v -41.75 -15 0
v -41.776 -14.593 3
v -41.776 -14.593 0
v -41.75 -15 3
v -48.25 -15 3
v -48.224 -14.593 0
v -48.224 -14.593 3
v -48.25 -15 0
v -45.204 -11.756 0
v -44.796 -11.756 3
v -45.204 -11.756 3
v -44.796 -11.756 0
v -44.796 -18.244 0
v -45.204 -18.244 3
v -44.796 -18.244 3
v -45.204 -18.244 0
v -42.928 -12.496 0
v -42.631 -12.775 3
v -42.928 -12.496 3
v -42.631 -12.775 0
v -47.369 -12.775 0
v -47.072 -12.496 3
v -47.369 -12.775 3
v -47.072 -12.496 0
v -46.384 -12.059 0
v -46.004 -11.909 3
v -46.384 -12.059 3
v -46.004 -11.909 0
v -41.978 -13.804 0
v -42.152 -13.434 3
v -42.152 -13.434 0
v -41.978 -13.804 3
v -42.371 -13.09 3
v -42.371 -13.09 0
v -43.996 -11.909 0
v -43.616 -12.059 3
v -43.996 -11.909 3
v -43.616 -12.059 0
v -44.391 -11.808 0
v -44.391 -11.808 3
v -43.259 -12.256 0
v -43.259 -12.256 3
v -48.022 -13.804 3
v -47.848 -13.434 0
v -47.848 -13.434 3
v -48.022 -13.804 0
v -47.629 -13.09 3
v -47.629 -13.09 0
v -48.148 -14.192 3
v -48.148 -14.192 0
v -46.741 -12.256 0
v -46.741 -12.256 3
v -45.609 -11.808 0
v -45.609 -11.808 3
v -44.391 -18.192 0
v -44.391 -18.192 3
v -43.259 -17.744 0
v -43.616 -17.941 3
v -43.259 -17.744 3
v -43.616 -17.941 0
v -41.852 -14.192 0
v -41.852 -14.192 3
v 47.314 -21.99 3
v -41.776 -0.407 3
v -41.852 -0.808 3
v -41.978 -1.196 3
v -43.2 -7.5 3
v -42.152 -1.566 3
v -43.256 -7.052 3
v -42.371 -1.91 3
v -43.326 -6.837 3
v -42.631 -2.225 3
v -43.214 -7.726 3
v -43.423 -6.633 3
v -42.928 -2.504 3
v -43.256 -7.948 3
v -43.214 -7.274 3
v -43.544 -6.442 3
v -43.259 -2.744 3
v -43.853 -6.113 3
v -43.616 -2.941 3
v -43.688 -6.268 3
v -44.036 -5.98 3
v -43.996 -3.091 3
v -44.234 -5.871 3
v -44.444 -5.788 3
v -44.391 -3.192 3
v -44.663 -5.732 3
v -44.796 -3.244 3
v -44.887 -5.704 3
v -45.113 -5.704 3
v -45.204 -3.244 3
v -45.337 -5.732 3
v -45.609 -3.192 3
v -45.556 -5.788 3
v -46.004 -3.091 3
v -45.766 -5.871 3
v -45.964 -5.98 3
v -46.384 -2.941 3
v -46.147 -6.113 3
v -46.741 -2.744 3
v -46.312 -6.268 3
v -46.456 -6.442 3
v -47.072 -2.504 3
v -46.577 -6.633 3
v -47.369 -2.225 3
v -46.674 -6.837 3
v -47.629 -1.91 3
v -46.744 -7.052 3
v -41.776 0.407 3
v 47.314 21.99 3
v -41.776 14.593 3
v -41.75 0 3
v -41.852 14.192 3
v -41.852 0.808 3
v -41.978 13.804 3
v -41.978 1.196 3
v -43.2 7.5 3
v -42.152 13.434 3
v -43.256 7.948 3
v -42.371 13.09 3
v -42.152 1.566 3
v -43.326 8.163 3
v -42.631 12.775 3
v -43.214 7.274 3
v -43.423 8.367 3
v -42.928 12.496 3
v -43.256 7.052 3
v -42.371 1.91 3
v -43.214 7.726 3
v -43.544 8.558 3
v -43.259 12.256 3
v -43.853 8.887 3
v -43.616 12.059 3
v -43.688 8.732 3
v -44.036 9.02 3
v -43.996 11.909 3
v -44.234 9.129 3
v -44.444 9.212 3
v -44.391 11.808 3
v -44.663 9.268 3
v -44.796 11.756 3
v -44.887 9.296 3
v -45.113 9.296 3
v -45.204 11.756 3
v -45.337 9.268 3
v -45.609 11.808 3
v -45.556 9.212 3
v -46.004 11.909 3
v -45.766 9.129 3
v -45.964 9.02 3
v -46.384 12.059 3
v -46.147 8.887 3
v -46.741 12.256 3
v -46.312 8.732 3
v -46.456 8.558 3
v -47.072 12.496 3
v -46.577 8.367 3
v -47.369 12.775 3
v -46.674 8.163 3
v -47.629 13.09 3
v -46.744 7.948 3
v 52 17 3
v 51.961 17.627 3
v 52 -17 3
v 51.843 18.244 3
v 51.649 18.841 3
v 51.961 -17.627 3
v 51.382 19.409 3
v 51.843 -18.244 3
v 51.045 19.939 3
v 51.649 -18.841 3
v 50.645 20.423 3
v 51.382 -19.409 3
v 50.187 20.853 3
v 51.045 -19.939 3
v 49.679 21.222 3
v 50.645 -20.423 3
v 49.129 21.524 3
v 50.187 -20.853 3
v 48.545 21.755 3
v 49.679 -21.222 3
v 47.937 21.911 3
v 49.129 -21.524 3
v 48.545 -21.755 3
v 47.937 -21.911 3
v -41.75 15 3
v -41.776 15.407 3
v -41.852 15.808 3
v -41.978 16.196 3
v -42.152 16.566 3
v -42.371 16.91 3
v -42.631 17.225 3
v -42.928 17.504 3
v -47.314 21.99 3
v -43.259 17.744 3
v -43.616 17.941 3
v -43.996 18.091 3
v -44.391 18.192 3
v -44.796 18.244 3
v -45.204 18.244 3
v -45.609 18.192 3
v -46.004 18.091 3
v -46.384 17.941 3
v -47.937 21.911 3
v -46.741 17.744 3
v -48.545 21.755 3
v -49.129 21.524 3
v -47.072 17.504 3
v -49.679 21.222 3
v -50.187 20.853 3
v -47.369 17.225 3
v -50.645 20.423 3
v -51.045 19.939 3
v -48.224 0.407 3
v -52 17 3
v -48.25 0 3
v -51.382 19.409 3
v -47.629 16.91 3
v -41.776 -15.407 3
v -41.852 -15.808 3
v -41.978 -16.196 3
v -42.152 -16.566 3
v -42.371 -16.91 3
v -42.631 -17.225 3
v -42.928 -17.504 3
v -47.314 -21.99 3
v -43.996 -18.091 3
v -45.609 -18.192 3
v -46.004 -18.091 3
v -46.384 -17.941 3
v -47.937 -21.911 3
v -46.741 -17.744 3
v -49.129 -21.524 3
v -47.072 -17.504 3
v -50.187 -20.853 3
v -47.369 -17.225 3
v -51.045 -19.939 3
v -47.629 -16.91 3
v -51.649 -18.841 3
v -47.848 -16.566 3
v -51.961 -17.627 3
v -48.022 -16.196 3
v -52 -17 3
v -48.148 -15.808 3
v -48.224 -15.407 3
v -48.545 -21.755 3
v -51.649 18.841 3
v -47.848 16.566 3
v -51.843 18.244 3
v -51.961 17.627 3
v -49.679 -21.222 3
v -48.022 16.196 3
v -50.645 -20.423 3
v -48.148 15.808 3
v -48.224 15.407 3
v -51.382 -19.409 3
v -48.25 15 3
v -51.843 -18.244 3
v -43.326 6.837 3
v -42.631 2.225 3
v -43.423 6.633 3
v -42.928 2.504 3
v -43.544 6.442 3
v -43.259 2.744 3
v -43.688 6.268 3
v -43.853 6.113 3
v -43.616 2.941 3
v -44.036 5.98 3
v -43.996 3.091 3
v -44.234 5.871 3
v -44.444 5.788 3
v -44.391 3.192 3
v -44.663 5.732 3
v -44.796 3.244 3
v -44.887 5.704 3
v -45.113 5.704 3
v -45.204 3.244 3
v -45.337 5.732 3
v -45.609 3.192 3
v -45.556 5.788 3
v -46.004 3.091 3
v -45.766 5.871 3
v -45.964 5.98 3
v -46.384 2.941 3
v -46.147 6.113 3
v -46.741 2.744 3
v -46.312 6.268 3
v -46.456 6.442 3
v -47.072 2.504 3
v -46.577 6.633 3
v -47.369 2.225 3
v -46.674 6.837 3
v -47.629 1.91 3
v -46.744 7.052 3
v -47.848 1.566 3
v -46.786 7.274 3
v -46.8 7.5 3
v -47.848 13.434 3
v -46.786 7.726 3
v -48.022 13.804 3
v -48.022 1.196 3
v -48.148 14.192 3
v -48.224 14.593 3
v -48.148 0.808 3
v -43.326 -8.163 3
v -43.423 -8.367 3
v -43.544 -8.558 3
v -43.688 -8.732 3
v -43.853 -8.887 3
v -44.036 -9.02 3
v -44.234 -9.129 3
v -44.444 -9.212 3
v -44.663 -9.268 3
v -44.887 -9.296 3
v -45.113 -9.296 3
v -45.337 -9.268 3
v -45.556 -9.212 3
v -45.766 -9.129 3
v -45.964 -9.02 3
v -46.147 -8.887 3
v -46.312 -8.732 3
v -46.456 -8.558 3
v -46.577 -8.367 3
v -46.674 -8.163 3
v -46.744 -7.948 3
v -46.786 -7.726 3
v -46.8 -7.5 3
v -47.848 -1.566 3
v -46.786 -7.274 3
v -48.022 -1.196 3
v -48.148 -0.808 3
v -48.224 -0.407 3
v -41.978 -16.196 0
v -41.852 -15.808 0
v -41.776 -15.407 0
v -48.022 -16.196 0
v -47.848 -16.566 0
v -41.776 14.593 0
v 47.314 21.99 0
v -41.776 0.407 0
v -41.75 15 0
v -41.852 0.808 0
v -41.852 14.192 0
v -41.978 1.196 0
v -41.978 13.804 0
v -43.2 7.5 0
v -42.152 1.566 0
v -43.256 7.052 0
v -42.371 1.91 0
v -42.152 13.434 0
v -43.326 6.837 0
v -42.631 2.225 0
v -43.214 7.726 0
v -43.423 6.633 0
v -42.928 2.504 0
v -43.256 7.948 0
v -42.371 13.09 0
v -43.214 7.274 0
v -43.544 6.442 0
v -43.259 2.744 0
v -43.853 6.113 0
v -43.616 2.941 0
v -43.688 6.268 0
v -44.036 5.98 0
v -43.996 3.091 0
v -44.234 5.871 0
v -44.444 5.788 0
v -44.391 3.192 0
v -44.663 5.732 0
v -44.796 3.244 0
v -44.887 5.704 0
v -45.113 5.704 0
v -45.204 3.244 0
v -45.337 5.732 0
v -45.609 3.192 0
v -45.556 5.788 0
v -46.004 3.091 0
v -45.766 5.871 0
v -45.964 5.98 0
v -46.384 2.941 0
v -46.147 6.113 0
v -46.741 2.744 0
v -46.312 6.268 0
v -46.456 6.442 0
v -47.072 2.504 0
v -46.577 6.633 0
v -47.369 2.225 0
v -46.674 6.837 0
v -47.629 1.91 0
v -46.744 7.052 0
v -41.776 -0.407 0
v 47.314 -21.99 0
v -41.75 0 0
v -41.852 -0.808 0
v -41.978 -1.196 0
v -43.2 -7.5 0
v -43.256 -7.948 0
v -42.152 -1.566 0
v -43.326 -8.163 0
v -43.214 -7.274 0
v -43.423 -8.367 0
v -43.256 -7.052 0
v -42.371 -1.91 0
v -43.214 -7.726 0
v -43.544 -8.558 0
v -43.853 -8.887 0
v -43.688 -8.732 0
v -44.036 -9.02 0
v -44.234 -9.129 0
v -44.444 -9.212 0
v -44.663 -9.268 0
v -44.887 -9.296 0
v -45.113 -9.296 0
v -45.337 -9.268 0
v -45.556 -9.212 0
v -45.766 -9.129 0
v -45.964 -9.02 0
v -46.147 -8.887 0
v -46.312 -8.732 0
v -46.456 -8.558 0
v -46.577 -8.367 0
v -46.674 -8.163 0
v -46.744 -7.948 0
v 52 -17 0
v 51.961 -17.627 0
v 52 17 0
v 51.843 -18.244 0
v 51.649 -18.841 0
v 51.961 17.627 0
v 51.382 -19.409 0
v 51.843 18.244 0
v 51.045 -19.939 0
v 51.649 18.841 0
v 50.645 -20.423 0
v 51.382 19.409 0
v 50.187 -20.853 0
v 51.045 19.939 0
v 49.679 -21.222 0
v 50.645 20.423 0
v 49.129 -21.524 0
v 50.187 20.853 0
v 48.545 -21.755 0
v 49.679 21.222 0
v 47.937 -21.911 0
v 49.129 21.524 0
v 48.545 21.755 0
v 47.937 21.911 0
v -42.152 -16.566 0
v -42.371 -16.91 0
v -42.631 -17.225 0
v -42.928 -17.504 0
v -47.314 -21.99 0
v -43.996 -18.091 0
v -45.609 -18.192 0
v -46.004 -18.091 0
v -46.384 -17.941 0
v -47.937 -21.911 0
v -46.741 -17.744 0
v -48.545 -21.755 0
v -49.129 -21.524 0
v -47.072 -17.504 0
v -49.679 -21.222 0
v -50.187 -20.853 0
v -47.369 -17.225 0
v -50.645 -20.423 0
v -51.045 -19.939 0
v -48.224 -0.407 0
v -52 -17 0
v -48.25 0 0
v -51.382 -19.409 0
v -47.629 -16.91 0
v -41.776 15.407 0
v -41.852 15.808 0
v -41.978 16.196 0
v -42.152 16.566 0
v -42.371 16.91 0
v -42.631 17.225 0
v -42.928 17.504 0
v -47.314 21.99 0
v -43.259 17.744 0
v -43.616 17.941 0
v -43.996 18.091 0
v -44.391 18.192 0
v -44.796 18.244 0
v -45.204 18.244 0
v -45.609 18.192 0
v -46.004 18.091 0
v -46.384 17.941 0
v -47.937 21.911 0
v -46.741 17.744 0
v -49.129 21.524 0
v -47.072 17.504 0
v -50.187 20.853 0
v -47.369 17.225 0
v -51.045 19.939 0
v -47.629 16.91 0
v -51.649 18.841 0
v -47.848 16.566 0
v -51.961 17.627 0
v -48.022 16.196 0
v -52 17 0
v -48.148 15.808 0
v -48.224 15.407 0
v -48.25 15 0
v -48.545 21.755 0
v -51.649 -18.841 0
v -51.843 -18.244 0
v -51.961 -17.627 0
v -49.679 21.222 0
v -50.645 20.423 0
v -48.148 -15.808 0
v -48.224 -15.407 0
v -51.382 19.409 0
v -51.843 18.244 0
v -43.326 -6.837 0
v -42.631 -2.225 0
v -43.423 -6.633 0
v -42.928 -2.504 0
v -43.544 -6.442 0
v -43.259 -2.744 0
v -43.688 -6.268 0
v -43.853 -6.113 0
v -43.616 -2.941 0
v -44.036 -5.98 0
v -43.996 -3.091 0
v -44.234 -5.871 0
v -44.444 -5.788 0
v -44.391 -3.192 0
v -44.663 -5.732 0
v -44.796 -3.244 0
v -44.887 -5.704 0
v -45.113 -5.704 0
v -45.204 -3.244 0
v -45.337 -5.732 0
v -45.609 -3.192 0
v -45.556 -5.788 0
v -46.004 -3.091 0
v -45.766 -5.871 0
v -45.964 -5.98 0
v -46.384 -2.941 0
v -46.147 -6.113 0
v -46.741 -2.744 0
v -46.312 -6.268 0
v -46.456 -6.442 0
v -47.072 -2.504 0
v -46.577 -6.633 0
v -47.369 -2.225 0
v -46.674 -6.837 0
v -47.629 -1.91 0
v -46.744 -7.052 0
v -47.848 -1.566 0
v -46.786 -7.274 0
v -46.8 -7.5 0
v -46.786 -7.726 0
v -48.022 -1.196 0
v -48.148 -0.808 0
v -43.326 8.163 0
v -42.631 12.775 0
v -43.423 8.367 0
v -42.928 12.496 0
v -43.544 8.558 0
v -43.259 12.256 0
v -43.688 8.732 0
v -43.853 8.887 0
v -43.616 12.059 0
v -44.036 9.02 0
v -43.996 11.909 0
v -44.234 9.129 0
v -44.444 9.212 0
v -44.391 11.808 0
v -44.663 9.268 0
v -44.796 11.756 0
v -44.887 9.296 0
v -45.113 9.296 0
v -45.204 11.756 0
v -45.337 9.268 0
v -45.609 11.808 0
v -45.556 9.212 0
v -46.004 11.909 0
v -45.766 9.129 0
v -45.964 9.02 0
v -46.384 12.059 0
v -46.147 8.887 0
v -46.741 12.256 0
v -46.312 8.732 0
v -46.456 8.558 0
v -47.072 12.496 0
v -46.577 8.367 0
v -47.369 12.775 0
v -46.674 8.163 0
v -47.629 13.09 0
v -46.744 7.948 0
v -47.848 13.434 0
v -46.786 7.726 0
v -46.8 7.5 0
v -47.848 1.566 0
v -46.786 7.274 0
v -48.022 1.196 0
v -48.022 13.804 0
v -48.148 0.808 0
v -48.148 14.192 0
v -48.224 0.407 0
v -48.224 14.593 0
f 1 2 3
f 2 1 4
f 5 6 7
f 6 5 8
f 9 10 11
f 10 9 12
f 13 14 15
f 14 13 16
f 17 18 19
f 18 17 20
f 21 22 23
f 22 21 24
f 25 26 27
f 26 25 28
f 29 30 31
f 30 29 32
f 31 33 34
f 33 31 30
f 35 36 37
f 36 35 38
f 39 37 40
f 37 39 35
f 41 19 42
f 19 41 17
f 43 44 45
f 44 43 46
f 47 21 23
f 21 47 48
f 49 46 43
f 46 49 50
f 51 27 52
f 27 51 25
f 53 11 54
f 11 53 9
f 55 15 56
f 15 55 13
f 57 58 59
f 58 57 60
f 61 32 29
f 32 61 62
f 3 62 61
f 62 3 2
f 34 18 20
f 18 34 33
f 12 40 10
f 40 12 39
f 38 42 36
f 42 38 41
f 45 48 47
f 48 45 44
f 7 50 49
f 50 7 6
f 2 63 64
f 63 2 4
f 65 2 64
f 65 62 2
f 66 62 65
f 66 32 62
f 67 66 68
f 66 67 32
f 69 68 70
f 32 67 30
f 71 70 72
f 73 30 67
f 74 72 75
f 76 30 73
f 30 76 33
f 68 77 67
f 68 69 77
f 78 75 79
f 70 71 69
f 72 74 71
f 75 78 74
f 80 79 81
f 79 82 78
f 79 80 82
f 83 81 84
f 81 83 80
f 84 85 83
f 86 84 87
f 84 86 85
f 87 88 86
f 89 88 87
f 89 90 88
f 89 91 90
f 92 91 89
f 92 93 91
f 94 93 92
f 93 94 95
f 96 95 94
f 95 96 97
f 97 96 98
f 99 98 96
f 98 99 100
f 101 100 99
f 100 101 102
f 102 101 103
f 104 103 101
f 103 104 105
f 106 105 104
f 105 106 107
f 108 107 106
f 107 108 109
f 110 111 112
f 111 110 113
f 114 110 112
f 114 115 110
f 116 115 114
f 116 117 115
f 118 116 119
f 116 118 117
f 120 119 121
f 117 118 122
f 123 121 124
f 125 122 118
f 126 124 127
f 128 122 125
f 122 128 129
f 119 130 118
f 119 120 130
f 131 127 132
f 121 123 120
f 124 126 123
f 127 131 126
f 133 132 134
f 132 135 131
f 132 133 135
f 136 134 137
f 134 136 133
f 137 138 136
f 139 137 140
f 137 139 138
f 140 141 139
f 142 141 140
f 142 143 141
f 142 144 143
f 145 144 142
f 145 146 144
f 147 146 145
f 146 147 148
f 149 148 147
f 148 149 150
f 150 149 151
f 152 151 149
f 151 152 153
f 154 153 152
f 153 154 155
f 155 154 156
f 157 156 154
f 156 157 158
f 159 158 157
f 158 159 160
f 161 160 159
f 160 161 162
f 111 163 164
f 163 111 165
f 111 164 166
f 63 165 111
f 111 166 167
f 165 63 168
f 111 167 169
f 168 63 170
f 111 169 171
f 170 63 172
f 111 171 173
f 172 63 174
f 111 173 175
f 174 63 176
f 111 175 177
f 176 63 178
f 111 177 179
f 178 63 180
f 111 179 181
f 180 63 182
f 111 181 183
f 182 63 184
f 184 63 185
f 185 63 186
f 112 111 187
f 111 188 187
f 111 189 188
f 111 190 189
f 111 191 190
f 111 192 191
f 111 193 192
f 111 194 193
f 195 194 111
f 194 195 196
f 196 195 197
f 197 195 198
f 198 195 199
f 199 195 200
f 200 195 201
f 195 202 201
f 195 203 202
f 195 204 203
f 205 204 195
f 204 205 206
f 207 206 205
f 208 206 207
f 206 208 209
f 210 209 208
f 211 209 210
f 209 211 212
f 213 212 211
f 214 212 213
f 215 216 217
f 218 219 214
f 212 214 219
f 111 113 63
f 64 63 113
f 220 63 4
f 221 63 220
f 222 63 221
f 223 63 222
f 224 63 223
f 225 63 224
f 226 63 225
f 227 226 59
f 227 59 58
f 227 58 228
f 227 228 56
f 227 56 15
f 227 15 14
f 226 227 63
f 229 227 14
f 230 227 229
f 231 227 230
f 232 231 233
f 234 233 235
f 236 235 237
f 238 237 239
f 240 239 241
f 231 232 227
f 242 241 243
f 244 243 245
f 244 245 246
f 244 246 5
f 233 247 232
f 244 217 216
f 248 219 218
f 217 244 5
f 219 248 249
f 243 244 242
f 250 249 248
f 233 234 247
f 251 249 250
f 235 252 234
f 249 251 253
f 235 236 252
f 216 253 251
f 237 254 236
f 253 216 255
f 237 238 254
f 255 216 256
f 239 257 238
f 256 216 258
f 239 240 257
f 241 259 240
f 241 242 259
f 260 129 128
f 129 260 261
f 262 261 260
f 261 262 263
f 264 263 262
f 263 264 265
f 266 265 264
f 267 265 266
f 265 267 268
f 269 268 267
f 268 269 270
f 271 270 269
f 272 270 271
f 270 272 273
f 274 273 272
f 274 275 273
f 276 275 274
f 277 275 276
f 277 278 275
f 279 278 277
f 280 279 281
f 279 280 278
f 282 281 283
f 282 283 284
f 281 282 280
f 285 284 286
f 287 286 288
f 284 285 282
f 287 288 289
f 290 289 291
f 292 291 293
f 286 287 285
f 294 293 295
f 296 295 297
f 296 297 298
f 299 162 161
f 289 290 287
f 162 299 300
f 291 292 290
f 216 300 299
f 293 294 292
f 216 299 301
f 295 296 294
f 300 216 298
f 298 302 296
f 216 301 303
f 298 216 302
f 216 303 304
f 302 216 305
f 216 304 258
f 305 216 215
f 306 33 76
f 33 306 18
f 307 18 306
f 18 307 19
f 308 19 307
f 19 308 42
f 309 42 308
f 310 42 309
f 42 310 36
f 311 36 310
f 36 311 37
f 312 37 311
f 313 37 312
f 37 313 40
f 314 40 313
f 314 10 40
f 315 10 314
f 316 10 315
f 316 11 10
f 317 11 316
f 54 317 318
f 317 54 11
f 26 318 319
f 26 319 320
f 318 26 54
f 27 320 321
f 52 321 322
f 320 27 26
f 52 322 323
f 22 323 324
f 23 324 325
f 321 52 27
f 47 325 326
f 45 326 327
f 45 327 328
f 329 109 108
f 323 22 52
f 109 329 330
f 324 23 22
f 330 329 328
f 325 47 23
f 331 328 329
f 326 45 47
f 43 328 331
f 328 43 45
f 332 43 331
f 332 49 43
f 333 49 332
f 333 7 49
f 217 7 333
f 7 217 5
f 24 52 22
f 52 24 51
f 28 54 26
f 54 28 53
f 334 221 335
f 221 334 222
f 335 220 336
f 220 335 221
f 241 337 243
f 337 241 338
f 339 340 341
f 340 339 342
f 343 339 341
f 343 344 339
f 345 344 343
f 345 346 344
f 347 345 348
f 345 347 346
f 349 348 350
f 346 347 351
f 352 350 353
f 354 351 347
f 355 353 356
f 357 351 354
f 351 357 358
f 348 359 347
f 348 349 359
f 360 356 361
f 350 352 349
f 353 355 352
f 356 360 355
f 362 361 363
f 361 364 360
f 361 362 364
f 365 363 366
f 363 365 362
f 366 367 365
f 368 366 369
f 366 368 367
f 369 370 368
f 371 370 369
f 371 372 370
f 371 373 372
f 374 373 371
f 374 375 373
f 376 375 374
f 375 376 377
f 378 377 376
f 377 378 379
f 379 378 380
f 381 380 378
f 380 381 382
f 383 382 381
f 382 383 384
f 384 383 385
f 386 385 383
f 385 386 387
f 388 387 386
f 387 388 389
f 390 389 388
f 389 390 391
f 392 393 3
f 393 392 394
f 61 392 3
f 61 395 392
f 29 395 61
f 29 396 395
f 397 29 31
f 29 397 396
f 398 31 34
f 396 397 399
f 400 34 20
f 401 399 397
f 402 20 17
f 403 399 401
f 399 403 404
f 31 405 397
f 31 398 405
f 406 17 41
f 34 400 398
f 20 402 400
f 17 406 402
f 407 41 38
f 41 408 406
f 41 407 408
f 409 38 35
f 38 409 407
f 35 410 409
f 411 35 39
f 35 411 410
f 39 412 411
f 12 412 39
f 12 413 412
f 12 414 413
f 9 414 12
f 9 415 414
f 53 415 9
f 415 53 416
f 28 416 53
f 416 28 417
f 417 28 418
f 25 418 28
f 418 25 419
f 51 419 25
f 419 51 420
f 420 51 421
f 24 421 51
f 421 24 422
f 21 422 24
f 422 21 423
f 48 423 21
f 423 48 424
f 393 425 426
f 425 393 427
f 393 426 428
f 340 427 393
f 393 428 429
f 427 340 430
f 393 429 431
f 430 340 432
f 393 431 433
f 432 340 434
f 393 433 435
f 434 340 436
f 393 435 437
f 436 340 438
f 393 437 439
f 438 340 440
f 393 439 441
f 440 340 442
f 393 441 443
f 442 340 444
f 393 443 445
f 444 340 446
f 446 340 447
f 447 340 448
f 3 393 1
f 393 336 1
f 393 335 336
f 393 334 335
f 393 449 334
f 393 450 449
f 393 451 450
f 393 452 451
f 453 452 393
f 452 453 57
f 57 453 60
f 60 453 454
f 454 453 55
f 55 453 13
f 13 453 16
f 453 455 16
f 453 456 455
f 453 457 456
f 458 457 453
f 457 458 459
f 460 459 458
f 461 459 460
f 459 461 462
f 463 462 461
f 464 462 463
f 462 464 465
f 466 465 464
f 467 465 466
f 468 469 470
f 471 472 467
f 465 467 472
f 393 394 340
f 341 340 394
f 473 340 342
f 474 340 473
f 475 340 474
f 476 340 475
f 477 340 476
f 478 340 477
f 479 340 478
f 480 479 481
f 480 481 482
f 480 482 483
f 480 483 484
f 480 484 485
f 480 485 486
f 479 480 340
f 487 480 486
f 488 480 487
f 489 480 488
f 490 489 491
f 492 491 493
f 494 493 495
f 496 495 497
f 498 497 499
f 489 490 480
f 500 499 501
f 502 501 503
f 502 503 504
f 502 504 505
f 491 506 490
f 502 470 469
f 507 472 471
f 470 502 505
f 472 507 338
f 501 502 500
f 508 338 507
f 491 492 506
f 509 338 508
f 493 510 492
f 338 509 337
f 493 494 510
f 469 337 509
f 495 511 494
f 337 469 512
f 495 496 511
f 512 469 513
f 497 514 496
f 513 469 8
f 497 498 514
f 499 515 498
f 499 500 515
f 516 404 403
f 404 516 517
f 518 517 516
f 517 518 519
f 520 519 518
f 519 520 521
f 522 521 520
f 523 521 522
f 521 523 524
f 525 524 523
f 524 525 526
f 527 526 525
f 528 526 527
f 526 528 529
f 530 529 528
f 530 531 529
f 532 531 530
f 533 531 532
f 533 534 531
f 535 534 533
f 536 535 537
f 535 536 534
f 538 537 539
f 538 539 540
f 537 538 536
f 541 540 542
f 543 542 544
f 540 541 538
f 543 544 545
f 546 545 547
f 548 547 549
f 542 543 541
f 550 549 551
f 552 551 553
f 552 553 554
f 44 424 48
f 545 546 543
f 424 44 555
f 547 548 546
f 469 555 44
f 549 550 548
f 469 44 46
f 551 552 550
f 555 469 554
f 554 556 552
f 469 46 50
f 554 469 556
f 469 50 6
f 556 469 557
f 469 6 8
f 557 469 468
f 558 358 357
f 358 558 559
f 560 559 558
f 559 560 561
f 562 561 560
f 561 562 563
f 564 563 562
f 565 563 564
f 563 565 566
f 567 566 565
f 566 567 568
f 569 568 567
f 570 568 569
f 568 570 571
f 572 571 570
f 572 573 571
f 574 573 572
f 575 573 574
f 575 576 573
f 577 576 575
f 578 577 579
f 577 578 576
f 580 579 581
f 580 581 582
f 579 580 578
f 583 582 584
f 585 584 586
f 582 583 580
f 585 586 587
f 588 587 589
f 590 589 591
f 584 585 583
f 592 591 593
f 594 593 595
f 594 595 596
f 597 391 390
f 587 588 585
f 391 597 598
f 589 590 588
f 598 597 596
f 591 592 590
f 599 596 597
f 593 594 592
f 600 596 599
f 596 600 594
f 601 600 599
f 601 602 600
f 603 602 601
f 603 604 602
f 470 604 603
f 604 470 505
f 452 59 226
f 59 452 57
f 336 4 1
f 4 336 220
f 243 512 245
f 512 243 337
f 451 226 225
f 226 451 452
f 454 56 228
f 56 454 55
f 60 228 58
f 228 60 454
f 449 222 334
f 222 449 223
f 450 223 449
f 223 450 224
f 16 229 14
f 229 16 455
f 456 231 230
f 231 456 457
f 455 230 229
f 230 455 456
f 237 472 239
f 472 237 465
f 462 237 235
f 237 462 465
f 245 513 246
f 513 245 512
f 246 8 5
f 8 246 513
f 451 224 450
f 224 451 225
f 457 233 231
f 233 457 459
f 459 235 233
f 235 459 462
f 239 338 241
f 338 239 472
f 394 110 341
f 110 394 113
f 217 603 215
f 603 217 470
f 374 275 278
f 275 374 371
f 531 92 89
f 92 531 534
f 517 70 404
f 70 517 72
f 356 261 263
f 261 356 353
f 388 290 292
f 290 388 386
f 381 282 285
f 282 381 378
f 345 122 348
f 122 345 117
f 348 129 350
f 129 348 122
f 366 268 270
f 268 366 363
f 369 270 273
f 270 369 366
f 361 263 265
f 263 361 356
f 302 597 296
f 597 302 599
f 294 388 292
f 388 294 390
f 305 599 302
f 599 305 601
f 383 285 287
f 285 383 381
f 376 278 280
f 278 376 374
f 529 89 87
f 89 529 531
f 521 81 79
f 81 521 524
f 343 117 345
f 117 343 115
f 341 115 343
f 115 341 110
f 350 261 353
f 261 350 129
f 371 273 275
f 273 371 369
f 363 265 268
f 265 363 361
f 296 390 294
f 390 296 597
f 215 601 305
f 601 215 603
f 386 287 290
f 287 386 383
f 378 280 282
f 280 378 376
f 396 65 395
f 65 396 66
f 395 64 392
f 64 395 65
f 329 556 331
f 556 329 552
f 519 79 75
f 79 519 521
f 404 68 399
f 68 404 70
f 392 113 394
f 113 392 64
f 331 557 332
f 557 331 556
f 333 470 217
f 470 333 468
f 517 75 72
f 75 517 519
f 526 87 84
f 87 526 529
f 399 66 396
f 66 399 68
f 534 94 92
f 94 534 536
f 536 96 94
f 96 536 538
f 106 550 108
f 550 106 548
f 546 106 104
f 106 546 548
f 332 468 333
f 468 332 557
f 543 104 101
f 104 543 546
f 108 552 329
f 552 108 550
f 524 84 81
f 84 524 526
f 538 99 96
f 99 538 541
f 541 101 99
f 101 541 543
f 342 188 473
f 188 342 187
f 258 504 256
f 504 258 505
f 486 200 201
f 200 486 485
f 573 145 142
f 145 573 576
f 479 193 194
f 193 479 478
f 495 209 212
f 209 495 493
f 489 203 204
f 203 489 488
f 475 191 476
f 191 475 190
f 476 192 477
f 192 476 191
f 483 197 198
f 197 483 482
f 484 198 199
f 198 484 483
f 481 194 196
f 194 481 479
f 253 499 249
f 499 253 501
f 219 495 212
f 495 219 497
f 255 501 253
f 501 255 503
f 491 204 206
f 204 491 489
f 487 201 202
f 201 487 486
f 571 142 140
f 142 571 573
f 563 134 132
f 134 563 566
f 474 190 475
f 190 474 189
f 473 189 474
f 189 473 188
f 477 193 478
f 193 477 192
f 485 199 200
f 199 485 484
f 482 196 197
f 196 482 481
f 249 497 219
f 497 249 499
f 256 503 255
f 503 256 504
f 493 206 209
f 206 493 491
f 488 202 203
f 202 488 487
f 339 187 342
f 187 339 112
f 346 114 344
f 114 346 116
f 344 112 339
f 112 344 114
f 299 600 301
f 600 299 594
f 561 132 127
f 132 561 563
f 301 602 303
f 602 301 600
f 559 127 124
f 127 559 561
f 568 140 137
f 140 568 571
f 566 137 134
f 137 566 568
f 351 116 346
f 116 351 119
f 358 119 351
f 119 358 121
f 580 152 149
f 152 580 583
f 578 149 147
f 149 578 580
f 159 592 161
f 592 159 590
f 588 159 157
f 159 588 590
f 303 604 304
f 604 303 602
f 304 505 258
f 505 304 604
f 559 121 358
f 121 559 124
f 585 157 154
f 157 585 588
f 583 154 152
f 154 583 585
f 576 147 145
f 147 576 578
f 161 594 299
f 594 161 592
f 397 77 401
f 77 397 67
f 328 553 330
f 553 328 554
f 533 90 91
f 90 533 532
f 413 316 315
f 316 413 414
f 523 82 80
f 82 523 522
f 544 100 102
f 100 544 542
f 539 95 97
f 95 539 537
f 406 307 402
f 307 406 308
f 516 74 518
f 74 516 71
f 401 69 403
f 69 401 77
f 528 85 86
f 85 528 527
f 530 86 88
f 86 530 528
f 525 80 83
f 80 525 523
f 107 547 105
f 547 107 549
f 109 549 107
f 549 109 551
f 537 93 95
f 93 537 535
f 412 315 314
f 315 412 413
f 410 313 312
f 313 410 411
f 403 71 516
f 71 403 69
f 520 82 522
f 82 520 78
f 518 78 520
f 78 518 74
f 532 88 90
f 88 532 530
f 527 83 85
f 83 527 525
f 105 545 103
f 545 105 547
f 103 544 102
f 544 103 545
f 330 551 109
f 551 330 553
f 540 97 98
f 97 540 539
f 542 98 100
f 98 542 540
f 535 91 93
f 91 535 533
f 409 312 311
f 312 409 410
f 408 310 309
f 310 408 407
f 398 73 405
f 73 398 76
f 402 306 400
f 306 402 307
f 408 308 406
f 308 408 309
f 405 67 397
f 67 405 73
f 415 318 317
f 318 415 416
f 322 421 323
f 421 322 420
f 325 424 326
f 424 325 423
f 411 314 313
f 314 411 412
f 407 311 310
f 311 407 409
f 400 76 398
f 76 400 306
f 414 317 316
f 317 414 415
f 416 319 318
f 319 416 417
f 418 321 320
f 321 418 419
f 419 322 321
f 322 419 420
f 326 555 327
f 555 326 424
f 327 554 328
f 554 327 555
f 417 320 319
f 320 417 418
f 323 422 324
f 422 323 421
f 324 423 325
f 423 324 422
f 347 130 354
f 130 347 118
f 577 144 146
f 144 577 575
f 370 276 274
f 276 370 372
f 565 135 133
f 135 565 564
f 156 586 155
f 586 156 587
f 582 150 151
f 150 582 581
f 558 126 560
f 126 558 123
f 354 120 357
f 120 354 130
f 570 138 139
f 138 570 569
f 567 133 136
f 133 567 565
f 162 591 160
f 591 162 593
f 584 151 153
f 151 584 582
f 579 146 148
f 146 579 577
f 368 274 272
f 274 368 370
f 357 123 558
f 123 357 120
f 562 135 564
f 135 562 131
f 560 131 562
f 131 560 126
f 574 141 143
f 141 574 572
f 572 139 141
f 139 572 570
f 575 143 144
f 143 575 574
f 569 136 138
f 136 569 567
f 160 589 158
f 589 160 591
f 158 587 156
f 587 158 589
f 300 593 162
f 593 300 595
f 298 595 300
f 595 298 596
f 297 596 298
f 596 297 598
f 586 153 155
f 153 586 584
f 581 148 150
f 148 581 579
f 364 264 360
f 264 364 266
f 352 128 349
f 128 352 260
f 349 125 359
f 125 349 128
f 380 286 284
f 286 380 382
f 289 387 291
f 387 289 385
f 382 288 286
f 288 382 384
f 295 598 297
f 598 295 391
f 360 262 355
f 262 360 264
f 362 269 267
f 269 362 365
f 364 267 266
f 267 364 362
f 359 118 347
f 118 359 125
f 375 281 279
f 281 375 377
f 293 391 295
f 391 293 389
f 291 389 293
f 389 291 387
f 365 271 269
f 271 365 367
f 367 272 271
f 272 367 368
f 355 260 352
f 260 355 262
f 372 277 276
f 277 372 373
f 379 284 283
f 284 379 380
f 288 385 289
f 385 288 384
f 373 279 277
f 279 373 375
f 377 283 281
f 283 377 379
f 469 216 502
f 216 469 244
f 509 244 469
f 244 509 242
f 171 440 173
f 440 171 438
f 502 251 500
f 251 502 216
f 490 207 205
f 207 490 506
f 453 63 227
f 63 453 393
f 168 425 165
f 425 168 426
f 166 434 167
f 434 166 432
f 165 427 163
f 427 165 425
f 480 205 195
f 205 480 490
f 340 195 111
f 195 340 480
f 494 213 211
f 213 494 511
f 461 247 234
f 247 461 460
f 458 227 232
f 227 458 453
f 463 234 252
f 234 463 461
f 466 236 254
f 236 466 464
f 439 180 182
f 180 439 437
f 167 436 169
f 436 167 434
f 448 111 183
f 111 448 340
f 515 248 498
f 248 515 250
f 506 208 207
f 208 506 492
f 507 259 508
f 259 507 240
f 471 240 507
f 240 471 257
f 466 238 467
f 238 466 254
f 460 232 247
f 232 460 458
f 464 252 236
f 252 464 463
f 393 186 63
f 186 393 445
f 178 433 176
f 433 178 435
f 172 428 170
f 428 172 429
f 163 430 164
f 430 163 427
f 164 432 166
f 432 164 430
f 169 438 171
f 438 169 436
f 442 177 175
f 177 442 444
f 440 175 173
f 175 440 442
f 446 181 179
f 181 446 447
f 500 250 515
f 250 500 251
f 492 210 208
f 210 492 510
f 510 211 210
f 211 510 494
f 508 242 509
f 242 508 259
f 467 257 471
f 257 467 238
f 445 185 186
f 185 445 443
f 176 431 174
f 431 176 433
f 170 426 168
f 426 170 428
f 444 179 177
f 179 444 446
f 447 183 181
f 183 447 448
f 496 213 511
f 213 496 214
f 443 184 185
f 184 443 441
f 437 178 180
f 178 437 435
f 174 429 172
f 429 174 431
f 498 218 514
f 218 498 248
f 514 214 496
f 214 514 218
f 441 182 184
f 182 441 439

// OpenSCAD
$fn = 50;


difference() {
	union() {
		hull() {
			translate(v = [-47.0000000000, 17.0000000000, 0]) {
				cylinder(h = 3, r = 5);
			}
			translate(v = [47.0000000000, 17.0000000000, 0]) {
				cylinder(h = 3, r = 5);
			}
			translate(v = [-47.0000000000, -17.0000000000, 0]) {
				cylinder(h = 3, r = 5);
			}
			translate(v = [47.0000000000, -17.0000000000, 0]) {
				cylinder(h = 3, r = 5);
			}
		}
	}
	union() {
		translate(v = [-45.0000000000, -15.0000000000, 0]) {
			cylinder(h = 3, r = 3.2500000000);
		}
		translate(v = [-45.0000000000, 0.0000000000, 0]) {
			cylinder(h = 3, r = 3.2500000000);
		}
		translate(v = [-45.0000000000, 15.0000000000, 0]) {
			cylinder(h = 3, r = 3.2500000000);
		}
		translate(v = [-45.0000000000, -15.0000000000, 0]) {
			cylinder(h = 3, r = 1.8000000000);
		}
		translate(v = [-45.0000000000, -7.5000000000, 0]) {
			cylinder(h = 3, r = 1.8000000000);
		}
		translate(v = [-45.0000000000, 0.0000000000, 0]) {
			cylinder(h = 3, r = 1.8000000000);
		}
		translate(v = [-45.0000000000, 7.5000000000, 0]) {
			cylinder(h = 3, r = 1.8000000000);
		}
		translate(v = [-45.0000000000, 15.0000000000, 0]) {
			cylinder(h = 3, r = 1.8000000000);
		}
		translate(v = [-45.0000000000, -15.0000000000, 0]) {
			cylinder(h = 3, r = 1.8000000000);
		}
		translate(v = [-45.0000000000, -7.5000000000, 0]) {
			cylinder(h = 3, r = 1.8000000000);
		}
		translate(v = [-45.0000000000, 0.0000000000, 0]) {
			cylinder(h = 3, r = 1.8000000000);
		}
		translate(v = [-45.0000000000, 7.5000000000, 0]) {
			cylinder(h = 3, r = 1.8000000000);
		}
		translate(v = [-45.0000000000, 15.0000000000, 0]) {
			cylinder(h = 3, r = 1.8000000000);
		}
		translate(v = [-45.0000000000, -15.0000000000, 0]) {
			cylinder(h = 3, r = 1.8000000000);
		}
		translate(v = [-45.0000000000, -7.5000000000, 0]) {
			cylinder(h = 3, r = 1.8000000000);
		}
		translate(v = [-45.0000000000, 0.0000000000, 0]) {
			cylinder(h = 3, r = 1.8000000000);
		}
		translate(v = [-45.0000000000, 7.5000000000, 0]) {
			cylinder(h = 3, r = 1.8000000000);
		}
		translate(v = [-45.0000000000, 15.0000000000, 0]) {
			cylinder(h = 3, r = 1.8000000000);
		}
	}
}
